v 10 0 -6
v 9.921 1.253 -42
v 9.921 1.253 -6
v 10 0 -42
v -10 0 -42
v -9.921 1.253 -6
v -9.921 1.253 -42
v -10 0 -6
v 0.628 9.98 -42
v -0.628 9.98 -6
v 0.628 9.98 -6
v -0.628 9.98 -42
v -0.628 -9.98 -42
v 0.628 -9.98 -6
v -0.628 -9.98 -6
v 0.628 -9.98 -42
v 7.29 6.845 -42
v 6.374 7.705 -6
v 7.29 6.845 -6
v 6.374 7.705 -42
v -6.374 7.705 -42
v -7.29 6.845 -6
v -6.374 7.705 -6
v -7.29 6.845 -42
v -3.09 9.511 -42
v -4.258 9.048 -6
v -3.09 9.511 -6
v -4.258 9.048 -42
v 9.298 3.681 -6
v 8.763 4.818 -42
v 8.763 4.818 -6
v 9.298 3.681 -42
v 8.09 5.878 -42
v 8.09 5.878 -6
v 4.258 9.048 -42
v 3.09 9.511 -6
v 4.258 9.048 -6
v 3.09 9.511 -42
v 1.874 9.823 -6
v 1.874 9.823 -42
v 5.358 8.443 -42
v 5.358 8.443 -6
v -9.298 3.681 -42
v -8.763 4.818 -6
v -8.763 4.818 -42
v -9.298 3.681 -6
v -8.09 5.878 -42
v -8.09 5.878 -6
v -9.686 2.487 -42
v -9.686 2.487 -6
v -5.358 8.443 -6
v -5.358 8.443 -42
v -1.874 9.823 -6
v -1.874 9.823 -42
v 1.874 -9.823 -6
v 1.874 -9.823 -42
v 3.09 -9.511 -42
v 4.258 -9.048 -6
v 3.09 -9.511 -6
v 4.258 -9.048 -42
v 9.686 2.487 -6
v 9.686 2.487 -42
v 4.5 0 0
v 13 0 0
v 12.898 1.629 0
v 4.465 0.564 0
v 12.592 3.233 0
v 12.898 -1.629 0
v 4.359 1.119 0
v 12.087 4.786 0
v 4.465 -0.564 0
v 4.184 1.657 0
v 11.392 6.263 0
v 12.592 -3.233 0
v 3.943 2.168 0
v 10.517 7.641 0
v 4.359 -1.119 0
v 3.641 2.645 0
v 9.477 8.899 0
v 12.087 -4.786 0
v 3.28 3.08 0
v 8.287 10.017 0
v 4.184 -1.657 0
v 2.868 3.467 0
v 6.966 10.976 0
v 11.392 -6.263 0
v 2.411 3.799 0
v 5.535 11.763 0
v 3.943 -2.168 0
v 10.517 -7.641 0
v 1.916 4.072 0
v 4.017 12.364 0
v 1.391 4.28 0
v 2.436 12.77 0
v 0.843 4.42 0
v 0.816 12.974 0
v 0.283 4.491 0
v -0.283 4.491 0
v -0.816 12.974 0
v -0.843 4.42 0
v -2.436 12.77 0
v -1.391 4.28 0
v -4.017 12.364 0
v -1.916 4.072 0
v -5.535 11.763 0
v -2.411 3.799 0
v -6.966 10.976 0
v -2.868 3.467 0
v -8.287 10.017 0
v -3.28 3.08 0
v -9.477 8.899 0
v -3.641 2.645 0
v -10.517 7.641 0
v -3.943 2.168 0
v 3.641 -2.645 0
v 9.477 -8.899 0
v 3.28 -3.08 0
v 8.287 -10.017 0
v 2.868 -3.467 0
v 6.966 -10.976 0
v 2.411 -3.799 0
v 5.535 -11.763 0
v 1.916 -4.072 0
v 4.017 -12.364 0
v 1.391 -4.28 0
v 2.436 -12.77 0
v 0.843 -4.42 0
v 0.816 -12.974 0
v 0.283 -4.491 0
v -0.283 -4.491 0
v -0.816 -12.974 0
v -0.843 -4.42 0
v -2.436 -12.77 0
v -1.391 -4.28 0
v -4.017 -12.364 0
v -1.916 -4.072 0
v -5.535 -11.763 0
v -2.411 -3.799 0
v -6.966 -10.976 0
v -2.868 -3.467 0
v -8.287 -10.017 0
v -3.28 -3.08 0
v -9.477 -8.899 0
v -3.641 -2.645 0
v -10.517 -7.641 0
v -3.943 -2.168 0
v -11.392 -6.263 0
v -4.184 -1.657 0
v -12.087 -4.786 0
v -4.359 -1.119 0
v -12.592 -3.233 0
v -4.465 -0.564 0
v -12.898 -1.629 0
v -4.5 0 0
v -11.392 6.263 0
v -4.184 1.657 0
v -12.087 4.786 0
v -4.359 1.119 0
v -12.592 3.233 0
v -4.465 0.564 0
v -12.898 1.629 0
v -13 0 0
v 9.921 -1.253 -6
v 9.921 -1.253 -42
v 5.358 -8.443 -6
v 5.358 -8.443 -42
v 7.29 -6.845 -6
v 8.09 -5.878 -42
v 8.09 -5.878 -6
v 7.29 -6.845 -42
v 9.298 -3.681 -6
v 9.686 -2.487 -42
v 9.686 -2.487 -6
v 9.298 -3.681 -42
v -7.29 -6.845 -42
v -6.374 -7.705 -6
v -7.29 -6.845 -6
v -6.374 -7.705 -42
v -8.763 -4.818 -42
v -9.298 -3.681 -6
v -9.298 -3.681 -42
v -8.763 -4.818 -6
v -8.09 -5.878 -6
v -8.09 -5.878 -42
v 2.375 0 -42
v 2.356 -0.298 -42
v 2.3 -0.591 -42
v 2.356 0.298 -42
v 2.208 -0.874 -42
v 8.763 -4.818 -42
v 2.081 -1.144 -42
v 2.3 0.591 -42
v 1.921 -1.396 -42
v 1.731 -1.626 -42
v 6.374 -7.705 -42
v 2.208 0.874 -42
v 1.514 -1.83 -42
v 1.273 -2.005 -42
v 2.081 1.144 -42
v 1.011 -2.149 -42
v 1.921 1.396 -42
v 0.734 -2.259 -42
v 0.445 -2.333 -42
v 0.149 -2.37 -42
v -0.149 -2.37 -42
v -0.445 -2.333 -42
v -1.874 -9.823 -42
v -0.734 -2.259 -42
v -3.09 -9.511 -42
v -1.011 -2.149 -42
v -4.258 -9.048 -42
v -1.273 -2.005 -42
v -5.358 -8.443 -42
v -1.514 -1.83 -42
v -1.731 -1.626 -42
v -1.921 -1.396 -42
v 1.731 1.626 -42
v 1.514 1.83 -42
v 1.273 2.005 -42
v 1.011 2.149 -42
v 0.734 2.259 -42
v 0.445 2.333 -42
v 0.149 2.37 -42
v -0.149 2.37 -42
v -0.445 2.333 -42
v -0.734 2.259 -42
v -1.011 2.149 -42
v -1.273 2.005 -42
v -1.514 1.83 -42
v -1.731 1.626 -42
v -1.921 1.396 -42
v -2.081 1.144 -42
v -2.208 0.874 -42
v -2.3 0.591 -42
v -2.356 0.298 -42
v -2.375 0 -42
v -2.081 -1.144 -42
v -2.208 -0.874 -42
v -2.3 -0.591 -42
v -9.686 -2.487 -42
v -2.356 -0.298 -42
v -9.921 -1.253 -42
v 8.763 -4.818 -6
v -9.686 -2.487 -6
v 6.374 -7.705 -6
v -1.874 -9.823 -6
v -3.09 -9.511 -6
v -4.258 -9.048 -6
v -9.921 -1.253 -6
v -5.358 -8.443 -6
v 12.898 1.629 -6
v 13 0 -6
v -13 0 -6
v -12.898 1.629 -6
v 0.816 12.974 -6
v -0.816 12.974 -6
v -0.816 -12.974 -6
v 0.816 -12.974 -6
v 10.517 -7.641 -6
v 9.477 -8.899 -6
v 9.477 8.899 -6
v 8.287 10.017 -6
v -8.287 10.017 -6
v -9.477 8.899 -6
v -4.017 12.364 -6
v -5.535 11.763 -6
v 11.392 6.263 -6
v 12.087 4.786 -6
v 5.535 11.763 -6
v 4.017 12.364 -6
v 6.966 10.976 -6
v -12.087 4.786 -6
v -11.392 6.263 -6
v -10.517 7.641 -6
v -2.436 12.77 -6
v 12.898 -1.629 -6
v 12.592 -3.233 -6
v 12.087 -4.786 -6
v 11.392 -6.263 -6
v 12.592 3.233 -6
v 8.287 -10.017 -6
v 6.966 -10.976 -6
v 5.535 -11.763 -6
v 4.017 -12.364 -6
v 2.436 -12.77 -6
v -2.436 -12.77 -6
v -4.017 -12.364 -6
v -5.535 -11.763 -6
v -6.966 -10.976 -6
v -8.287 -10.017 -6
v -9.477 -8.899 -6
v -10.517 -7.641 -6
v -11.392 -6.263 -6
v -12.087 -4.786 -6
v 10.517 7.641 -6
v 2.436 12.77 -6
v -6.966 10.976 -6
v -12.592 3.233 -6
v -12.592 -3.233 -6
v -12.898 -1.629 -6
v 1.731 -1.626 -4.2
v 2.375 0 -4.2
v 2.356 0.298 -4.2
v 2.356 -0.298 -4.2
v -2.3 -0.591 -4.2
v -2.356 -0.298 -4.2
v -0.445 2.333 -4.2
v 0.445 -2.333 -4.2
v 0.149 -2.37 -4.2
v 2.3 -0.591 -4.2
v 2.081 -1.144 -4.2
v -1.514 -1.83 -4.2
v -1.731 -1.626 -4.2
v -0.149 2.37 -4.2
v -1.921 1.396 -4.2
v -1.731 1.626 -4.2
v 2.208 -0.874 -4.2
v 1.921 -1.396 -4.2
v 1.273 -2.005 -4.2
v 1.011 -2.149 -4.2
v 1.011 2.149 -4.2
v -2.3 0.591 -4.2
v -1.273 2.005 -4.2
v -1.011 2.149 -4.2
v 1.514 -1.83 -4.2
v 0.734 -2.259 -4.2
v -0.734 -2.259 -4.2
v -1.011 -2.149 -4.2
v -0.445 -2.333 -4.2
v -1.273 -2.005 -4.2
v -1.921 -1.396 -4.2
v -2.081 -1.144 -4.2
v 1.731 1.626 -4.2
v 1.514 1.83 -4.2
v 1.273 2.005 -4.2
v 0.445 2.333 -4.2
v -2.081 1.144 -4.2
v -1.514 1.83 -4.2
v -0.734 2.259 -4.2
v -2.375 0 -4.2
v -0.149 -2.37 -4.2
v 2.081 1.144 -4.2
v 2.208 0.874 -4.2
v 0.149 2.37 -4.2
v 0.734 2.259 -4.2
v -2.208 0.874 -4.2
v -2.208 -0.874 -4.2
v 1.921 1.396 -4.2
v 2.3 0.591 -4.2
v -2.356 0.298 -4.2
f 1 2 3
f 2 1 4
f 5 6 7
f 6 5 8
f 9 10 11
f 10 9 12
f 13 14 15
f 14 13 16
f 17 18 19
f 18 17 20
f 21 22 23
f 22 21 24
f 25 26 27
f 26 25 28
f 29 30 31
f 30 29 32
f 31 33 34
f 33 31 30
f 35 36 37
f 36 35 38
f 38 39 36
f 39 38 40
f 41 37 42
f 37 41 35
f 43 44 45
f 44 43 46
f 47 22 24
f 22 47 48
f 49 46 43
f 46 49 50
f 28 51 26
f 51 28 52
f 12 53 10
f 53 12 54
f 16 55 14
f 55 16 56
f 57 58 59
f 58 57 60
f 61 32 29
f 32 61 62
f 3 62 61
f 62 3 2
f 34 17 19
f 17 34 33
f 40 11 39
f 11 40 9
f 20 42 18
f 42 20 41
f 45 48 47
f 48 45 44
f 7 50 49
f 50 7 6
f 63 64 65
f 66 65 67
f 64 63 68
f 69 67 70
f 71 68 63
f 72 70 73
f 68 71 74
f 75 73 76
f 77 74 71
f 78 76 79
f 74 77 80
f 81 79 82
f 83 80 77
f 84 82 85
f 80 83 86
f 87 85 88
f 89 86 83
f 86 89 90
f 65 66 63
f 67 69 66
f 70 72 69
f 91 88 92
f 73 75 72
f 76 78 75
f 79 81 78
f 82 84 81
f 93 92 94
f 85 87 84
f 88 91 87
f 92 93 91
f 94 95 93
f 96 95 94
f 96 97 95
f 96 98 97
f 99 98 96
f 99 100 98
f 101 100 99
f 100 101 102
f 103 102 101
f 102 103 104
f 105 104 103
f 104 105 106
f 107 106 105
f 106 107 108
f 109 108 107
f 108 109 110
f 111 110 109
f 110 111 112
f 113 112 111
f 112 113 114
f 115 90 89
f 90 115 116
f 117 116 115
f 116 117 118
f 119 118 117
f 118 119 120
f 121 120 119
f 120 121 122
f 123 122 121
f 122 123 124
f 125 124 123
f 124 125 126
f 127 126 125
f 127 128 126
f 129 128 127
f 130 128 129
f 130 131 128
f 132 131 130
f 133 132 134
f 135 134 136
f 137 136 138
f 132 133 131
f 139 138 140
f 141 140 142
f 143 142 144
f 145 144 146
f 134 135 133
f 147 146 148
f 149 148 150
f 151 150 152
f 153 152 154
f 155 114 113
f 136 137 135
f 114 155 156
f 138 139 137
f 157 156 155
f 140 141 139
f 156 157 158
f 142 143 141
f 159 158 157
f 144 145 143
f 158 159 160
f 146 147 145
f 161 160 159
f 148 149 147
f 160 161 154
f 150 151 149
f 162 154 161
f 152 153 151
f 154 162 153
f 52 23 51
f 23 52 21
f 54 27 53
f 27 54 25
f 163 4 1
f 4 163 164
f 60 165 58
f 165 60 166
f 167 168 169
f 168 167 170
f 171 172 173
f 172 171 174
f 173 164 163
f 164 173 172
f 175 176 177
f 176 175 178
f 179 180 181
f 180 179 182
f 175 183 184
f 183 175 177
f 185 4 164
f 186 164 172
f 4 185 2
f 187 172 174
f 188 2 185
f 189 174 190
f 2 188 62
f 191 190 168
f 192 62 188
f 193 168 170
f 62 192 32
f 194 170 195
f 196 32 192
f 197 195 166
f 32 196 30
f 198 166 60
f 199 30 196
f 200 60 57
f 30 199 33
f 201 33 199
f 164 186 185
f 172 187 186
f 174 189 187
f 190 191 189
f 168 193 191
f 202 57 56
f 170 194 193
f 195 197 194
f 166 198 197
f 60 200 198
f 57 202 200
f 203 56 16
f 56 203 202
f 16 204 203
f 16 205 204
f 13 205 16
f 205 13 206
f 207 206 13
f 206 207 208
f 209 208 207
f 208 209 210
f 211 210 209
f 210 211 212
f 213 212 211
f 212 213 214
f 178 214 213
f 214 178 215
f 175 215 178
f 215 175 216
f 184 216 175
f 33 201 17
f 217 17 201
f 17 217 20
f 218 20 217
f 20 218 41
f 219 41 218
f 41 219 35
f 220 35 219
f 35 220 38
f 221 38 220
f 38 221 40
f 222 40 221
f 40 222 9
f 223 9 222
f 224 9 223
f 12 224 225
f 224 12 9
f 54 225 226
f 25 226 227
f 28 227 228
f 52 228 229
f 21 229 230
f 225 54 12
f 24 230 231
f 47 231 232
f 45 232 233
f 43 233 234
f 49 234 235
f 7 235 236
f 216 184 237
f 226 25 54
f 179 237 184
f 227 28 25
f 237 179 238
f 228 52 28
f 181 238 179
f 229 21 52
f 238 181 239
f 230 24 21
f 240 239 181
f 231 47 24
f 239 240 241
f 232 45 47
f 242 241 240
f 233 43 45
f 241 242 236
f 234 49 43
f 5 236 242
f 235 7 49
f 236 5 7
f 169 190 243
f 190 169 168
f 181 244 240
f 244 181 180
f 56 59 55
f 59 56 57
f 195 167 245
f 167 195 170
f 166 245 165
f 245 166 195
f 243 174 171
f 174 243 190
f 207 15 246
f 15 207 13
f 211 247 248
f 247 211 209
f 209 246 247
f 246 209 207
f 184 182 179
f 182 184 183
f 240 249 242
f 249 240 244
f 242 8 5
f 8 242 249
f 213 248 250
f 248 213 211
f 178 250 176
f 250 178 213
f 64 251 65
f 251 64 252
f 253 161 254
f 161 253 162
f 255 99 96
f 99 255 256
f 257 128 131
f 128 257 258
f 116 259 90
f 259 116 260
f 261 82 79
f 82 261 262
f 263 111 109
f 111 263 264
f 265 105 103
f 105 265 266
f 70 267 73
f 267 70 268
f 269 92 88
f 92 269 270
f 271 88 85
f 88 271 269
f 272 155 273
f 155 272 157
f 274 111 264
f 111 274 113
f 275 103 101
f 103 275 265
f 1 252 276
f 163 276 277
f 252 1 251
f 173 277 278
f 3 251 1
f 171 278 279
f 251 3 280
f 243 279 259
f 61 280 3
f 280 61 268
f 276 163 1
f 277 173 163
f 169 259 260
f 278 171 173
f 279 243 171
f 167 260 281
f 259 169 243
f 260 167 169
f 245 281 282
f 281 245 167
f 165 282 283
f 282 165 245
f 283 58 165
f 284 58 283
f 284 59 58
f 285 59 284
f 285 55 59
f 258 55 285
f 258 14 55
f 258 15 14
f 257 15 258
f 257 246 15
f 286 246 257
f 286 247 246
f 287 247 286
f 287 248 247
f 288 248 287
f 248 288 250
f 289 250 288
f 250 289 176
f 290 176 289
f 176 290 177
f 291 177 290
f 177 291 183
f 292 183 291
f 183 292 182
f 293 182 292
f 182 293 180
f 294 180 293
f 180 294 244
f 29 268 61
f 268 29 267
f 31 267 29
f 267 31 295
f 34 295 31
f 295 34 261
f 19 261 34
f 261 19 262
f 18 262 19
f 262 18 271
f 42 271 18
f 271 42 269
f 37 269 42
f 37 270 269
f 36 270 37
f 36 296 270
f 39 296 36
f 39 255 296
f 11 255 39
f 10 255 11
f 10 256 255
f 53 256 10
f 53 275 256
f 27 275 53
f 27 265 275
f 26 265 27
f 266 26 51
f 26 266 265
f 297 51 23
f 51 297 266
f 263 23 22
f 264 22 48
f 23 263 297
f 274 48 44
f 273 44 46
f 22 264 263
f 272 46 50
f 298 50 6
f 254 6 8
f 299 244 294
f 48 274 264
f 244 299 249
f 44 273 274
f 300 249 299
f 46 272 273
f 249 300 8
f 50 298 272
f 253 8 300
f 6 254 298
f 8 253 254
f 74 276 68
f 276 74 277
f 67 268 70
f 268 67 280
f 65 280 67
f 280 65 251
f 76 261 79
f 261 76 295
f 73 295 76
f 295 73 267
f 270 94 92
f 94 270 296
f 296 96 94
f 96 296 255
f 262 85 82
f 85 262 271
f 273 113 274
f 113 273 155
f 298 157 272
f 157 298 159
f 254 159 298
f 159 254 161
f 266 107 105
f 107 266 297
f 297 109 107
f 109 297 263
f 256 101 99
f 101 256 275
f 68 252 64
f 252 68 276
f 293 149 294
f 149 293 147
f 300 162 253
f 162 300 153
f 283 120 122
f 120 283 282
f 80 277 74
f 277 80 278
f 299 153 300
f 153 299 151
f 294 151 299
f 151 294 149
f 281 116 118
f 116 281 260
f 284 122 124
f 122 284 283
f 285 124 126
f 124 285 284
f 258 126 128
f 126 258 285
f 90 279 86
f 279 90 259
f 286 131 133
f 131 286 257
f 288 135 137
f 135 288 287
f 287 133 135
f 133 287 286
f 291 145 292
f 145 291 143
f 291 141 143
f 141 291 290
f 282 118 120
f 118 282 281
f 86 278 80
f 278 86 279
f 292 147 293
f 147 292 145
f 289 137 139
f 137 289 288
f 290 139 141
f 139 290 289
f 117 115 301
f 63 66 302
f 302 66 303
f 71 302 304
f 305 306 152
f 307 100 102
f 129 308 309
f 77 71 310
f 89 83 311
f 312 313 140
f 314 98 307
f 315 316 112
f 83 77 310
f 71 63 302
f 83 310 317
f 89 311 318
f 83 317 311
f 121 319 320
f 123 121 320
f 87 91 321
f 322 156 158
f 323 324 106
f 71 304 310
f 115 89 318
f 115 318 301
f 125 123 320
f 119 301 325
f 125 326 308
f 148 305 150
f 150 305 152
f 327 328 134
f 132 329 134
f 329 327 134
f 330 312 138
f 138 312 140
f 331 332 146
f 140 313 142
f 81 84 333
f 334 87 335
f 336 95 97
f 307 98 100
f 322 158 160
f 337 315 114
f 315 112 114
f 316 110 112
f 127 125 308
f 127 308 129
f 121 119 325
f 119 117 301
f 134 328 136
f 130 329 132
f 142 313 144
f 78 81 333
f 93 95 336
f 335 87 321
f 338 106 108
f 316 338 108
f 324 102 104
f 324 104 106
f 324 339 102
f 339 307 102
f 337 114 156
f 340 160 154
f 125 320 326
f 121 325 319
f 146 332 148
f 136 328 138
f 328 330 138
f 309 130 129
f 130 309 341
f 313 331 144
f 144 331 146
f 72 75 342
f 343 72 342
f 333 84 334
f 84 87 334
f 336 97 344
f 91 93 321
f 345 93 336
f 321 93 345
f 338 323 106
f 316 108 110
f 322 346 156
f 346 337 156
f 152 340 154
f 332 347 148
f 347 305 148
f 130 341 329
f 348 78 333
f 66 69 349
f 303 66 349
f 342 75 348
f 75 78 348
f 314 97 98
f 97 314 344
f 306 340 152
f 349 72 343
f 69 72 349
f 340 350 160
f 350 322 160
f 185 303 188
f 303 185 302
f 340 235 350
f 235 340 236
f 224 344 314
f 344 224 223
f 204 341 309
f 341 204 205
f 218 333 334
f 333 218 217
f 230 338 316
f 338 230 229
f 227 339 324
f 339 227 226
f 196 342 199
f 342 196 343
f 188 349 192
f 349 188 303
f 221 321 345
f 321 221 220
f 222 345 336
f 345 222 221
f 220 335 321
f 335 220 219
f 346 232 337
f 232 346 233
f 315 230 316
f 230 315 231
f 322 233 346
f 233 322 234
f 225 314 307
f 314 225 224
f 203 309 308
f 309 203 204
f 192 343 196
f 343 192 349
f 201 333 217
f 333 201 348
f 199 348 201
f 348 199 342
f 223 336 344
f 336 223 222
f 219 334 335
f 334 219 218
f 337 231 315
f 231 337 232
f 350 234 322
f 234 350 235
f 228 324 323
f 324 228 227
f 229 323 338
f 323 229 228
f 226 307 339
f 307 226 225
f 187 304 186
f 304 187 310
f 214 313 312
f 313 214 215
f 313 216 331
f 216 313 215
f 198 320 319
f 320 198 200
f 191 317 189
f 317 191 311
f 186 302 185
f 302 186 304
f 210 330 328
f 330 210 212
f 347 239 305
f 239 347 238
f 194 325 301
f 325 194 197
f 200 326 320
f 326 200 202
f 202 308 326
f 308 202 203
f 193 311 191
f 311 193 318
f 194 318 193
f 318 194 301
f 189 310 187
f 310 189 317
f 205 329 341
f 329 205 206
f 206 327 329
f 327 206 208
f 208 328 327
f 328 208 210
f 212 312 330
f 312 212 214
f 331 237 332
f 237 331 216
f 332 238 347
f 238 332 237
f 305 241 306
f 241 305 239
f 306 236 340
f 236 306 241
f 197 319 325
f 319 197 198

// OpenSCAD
$fn = 50;


difference() {
	union() {
		translate(v = [0, 0, -42.0000000000]) {
			cylinder(h = 42, r = 10.0000000000);
		}
		translate(v = [0, 0, -6.0000000000]) {
			cylinder(h = 6, r = 13.0000000000);
		}
	}
	union() {
		translate(v = [0, 0, 0]) {
			rotate(a = [0, 0, 0]) {
				difference() {
					union() {
						#translate(v = [0, 0, -42.0000000000]) {
							cylinder(h = 42, r = 2.2500000000);
						}
						#translate(v = [0, 0, -4.2000000000]) {
							cylinder(h = 4.2000000000, r1 = 2.3750000000, r2 = 4.5000000000);
						}
						#translate(v = [0, 0, -42.0000000000]) {
							cylinder(h = 42, r = 2.3750000000);
						}
						#translate(v = [0, 0, -42.0000000000]) {
							cylinder(h = 42, r = 2.2500000000);
						}
					}
					union();
				}
			}
		}
	}
}
